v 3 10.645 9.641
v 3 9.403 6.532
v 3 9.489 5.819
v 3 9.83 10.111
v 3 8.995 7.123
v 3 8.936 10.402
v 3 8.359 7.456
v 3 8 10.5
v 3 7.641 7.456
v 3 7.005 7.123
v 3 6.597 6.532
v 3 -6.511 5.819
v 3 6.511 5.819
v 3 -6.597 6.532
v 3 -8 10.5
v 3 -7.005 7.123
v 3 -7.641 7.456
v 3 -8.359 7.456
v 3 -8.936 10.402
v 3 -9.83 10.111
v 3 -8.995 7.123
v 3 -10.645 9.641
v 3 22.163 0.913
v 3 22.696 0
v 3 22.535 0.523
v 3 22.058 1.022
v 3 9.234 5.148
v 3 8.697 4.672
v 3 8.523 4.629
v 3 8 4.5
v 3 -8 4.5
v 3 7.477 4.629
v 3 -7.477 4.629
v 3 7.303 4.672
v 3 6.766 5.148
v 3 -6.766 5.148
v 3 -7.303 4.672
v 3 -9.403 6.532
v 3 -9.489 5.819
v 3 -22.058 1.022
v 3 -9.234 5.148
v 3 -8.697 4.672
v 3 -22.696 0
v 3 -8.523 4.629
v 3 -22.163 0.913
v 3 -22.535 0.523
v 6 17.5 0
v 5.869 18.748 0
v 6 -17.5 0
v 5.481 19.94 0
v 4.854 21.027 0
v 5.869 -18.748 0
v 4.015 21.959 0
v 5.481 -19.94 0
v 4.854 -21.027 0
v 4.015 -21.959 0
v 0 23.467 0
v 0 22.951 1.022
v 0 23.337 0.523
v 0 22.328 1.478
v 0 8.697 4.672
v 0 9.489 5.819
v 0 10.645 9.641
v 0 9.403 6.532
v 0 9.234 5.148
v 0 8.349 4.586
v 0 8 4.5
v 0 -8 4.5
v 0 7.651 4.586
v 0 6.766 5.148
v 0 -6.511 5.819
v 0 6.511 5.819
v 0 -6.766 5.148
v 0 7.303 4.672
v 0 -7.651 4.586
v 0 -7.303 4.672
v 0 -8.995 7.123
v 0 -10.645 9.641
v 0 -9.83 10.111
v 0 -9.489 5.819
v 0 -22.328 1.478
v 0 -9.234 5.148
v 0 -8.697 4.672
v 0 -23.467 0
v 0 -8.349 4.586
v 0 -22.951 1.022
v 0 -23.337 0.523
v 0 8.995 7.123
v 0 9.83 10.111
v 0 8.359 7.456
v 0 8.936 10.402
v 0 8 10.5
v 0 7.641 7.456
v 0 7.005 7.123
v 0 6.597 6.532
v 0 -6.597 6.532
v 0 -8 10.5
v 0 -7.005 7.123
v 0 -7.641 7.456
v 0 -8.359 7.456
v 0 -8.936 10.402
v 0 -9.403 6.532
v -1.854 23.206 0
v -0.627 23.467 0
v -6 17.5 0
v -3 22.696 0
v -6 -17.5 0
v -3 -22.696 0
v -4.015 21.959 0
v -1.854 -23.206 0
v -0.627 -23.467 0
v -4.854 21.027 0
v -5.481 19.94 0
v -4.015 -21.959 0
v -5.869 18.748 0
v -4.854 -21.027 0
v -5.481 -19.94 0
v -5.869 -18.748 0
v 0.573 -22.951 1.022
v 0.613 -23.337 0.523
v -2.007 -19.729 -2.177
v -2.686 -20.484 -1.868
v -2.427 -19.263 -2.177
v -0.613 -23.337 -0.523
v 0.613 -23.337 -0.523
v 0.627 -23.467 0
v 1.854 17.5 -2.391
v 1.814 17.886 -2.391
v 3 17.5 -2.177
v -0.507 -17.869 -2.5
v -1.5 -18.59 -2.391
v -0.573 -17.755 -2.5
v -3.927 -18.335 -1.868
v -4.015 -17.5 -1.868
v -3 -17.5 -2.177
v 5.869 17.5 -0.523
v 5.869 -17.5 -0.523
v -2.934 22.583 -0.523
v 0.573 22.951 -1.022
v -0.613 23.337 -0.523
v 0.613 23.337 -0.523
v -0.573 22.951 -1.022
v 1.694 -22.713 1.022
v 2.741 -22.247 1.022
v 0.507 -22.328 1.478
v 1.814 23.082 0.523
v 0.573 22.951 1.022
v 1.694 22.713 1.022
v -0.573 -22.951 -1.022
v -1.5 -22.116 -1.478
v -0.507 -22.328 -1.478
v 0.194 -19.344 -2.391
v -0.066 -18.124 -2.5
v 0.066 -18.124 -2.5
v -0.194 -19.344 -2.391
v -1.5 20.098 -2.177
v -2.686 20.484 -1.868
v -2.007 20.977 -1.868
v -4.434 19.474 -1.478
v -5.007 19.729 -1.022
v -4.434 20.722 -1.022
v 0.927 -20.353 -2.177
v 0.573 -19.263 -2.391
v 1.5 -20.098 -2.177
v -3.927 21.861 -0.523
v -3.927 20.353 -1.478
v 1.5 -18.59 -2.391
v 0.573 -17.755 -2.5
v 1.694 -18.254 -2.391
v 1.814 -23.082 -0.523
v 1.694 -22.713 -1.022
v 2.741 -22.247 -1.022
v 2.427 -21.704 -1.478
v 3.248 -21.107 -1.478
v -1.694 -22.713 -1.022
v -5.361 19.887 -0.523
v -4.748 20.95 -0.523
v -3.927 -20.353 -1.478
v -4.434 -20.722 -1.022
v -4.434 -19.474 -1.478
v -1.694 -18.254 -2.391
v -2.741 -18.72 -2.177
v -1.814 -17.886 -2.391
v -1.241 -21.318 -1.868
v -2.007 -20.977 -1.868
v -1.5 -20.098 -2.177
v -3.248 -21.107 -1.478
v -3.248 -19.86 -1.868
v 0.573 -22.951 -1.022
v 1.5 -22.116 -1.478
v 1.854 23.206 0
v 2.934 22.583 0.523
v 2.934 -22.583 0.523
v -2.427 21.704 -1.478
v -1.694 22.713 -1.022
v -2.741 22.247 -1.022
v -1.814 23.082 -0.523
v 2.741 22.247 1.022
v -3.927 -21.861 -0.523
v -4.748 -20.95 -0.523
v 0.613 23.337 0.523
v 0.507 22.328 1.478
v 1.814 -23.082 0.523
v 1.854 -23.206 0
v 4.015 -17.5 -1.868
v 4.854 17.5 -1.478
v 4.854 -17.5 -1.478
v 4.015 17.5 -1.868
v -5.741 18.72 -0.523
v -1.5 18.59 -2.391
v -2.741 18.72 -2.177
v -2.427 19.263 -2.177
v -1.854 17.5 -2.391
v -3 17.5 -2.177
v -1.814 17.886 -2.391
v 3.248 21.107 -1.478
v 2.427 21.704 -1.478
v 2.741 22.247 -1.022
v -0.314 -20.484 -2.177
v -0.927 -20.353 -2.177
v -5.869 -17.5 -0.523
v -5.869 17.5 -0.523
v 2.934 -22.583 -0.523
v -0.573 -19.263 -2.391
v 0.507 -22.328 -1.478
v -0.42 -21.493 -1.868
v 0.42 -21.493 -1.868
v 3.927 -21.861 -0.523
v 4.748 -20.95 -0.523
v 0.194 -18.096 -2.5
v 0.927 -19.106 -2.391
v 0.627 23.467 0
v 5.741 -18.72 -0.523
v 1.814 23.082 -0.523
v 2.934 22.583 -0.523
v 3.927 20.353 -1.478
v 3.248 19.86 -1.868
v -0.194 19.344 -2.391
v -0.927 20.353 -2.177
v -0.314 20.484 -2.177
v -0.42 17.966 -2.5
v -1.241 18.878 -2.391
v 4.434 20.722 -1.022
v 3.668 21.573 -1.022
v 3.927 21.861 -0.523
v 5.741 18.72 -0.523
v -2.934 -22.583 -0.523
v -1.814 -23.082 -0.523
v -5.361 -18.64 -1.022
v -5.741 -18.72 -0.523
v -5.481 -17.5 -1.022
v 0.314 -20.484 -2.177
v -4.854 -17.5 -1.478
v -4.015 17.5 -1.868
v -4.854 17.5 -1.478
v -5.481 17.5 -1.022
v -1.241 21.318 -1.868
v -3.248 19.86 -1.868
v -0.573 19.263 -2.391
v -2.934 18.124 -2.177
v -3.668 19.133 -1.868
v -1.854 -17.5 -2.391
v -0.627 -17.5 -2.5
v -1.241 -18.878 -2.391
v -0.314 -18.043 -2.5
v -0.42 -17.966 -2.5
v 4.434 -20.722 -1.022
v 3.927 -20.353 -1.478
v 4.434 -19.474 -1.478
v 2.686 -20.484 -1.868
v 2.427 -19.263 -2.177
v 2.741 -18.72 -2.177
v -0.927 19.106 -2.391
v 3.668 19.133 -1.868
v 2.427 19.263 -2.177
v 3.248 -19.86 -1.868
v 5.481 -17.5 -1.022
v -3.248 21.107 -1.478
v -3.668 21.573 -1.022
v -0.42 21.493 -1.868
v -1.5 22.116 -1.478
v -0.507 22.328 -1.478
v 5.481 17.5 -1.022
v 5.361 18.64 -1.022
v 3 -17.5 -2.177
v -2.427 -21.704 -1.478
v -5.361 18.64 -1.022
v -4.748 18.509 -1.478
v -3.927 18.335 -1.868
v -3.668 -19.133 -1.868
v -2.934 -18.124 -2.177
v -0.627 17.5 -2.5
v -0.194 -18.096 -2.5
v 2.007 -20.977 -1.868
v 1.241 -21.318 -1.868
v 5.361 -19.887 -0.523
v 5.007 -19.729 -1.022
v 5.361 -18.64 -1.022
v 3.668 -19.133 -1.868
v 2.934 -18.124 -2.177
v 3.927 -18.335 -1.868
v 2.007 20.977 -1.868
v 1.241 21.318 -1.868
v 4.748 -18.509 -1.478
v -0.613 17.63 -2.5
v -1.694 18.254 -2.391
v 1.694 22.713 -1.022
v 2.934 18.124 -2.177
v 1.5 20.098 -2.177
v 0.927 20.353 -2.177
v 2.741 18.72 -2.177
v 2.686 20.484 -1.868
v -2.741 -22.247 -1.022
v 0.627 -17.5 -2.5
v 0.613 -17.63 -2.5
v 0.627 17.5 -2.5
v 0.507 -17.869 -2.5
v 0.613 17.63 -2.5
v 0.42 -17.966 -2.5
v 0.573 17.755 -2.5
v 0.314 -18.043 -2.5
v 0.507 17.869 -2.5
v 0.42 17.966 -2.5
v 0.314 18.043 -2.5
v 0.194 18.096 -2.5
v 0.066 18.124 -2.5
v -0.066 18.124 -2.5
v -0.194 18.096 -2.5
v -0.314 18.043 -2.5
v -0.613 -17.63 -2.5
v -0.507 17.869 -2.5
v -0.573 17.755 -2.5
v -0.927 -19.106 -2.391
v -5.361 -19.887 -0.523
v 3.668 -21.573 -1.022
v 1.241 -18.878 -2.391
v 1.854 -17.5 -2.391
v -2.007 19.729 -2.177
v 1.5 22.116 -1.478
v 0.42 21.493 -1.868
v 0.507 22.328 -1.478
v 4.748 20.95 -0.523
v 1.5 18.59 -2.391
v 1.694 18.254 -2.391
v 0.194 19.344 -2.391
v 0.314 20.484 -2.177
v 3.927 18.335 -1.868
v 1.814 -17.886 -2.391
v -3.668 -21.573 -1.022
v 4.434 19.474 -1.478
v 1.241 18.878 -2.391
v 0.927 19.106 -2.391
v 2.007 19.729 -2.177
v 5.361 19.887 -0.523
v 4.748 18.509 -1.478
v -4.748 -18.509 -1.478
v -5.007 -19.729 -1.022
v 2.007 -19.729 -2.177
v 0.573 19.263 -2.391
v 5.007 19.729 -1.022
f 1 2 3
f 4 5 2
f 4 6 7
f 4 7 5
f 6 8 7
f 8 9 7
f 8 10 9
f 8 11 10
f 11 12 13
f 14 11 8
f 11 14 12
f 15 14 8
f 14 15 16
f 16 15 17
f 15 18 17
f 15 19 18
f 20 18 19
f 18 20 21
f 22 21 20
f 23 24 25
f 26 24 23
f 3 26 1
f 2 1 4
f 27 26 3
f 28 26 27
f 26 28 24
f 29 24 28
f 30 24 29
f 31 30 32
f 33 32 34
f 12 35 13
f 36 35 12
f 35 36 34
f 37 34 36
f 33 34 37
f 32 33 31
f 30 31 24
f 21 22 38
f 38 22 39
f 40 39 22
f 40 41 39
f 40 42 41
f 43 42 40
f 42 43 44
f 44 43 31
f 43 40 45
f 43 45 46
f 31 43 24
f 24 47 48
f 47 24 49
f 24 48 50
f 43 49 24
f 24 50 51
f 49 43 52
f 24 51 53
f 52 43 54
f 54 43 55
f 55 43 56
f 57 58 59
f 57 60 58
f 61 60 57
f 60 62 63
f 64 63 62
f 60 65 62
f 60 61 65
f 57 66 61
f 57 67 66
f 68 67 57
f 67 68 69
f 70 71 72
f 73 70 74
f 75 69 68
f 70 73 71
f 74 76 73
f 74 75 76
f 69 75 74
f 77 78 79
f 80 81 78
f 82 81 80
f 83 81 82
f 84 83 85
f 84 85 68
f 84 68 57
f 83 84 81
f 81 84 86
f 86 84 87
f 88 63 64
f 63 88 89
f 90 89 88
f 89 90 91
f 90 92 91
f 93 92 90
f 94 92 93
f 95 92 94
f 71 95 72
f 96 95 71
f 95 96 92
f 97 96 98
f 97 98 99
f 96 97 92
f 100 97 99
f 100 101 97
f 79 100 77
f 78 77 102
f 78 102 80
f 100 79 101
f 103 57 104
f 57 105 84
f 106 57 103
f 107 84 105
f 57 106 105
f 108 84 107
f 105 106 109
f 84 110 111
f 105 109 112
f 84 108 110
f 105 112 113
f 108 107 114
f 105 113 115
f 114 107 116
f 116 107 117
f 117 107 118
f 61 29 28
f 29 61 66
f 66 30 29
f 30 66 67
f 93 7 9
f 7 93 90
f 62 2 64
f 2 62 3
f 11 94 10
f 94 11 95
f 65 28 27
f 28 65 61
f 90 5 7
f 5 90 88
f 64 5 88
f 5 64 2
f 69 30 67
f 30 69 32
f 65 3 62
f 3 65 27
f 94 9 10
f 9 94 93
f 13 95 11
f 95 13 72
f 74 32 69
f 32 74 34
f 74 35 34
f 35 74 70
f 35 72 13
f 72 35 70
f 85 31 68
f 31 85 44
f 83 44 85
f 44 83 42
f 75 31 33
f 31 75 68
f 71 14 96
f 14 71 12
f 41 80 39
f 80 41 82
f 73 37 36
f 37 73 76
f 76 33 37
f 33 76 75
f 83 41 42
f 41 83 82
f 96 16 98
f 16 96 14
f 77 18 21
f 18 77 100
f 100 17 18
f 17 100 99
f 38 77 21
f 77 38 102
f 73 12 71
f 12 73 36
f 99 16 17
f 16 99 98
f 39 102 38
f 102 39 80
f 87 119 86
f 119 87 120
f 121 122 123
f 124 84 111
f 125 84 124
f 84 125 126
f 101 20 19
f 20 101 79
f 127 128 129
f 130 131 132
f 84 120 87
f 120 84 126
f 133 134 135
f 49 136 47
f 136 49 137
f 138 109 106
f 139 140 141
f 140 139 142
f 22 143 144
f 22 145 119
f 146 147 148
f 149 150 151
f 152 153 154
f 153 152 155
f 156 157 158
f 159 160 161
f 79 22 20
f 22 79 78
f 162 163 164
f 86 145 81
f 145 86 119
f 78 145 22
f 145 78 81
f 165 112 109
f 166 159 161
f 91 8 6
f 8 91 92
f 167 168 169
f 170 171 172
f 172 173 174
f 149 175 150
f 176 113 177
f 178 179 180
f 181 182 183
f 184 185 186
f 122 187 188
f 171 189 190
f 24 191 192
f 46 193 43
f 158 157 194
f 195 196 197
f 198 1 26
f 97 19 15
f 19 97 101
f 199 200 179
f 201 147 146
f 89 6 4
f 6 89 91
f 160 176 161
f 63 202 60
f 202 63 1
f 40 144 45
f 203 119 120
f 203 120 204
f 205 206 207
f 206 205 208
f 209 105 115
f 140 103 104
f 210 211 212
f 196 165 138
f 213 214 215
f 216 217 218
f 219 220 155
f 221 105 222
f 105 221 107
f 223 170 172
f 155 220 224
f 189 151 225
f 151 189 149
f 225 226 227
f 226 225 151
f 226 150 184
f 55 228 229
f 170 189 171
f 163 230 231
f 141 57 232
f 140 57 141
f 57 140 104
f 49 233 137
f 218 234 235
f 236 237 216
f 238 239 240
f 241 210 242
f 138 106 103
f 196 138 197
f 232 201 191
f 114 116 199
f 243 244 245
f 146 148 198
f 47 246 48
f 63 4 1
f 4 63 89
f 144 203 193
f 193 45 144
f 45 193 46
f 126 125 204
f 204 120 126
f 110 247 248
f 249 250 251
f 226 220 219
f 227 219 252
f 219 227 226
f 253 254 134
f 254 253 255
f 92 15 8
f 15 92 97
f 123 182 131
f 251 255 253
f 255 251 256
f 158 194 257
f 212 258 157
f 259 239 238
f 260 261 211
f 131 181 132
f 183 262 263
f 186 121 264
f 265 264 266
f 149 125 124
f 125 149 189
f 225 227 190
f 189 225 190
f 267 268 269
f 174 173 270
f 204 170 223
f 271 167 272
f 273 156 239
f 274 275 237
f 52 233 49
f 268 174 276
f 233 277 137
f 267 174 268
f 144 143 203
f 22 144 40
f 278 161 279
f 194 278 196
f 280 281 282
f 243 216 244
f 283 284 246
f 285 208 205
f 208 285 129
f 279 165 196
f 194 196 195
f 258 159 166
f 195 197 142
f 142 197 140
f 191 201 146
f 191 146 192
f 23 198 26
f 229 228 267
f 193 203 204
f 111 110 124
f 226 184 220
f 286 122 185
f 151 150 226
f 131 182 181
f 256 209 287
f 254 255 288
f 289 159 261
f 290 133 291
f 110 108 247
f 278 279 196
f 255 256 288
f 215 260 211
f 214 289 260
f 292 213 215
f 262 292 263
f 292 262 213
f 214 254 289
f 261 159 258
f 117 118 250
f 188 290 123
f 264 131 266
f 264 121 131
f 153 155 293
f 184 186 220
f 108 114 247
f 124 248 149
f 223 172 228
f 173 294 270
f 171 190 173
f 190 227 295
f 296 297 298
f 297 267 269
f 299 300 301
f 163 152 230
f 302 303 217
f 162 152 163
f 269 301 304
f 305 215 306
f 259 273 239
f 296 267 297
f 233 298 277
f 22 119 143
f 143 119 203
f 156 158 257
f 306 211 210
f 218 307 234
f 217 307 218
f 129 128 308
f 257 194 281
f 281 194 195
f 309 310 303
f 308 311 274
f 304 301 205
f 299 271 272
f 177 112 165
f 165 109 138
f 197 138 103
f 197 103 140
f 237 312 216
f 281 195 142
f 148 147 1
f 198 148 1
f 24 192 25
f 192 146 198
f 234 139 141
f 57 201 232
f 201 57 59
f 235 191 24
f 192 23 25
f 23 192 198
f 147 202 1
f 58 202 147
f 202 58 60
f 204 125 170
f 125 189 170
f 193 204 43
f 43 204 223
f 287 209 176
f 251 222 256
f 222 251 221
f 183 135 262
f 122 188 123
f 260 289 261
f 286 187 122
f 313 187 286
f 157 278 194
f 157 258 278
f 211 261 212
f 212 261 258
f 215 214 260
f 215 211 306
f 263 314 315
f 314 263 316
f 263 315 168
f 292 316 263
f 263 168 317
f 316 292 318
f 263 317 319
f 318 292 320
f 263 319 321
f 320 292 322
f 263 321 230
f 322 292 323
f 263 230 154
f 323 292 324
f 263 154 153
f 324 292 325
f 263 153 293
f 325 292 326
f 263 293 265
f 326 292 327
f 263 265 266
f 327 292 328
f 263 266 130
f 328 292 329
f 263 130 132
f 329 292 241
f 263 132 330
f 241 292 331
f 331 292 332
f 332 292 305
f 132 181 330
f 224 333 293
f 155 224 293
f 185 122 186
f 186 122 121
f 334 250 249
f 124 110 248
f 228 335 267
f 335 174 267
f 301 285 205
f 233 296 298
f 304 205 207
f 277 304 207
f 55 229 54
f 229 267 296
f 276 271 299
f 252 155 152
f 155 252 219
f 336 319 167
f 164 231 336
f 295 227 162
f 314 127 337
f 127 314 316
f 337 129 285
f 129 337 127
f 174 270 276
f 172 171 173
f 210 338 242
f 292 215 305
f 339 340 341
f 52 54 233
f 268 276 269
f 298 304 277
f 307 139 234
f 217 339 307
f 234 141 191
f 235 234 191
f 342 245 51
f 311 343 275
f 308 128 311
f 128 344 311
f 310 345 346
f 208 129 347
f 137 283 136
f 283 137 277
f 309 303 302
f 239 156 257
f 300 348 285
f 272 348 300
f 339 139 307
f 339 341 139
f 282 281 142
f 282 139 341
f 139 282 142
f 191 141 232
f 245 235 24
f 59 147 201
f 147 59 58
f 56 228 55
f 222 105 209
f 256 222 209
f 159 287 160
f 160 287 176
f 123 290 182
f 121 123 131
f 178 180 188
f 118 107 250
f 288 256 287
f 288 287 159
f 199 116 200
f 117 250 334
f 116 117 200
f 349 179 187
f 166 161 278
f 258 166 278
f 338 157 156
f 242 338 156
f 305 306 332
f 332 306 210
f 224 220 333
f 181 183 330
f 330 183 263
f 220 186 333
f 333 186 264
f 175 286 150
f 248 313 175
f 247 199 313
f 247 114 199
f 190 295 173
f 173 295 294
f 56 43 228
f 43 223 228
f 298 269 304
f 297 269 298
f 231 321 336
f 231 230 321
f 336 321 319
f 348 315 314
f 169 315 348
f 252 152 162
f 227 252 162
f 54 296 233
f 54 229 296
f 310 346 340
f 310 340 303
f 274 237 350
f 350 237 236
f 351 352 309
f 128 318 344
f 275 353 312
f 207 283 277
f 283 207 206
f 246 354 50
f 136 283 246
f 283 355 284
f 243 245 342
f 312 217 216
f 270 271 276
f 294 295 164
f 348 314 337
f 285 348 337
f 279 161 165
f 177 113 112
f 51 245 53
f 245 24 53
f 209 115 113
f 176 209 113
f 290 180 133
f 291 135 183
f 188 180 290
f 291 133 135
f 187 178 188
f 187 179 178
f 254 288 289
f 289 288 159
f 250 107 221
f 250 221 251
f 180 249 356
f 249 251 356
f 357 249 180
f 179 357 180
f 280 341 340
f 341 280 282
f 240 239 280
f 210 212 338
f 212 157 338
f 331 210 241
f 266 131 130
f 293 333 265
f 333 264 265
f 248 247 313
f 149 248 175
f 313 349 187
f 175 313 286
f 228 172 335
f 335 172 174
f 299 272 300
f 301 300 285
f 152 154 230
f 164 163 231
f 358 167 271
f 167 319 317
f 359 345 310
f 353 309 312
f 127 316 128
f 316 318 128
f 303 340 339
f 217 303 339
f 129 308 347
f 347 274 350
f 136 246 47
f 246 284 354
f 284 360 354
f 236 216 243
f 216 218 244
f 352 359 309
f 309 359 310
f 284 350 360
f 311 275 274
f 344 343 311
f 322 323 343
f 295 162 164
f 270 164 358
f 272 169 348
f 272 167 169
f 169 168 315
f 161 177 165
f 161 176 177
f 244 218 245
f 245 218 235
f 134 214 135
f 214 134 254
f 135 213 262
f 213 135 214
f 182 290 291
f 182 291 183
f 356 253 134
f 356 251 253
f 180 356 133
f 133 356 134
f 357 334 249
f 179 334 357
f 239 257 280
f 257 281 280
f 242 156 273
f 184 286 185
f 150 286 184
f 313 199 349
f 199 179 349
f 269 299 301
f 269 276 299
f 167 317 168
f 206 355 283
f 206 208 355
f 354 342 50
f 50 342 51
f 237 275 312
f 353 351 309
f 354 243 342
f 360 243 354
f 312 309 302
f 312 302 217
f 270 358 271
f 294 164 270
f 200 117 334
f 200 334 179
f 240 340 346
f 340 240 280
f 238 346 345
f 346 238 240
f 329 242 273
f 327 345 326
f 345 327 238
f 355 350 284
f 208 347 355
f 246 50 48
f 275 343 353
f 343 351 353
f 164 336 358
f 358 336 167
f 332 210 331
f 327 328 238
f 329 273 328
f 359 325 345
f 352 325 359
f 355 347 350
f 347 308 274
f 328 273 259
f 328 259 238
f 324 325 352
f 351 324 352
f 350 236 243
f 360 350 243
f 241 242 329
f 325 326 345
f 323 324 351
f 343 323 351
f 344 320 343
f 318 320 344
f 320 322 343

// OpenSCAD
$fs=.75;

difference() {
	hull() {
		union() {
			resize(newsize = [0, 0, 5]) {
				union() {
					rotate(a = [90, 0, 0]) {
						translate(v = [-0.0000000000, -0.0000000000, -17.5000000000]) {
							cylinder(d = 12.0000000000, h = 35.0000000000);
						}
					}
					union() {
						translate(v = [0, 17.5000000000, 0]) {
							sphere(d = 12.0000000000);
						}
						mirror(v = [0, 1, 0]) {
							translate(v = [0, 17.5000000000, 0]) {
								sphere(d = 12.0000000000);
							}
						}
					}
				}
			}
			translate(v = [1.5000000000, 0, 0]) {
				union() {
					translate(v = [0.0000000000, 0.0000000000, 4.5000000000]) {
						translate(v = [-1.5000000000, -8.0000000000, -4.5000000000]) {
							cube(size = [3.0000000000, 16.0000000000, 9.0000000000]);
						}
					}
					union() {
						translate(v = [0, 8.0000000000, 6.0000000000]) {
							rotate(a = [0, 90, 0]) {
								translate(v = [-0.0000000000, -0.0000000000, -1.5000000000]) {
									cylinder(d = 9.0000000000, h = 3.0000000000);
								}
							}
						}
						mirror(v = [0, 1, 0]) {
							translate(v = [0, 8.0000000000, 6.0000000000]) {
								rotate(a = [0, 90, 0]) {
									translate(v = [-0.0000000000, -0.0000000000, -1.5000000000]) {
										cylinder(d = 9.0000000000, h = 3.0000000000);
									}
								}
							}
						}
					}
				}
			}
		}
	}
	translate(v = [1.5000000000, 0, 0]) {
		union() {
			translate(v = [1.5000000000, 0, 0]) {
				translate(v = [6.0000000000, 0.0000000000, 6.5000000000]) {
					translate(v = [-6.0000000000, -24.0000000000, -6.5000000000]) {
						cube(size = [12.0000000000, 48.0000000000, 13.0000000000]);
					}
				}
			}
			mirror(v = [1, 0, 0]) {
				translate(v = [1.5000000000, 0, 0]) {
					translate(v = [6.0000000000, 0.0000000000, 6.5000000000]) {
						translate(v = [-6.0000000000, -24.0000000000, -6.5000000000]) {
							cube(size = [12.0000000000, 48.0000000000, 13.0000000000]);
						}
					}
				}
			}
		}
	}
	union() {
		translate(v = [0, 8.0000000000, 6.0000000000]) {
			rotate(a = [0, 90, 0]) {
				translate(v = [-0.0000000000, -0.0000000000, -6.0000000000]) {
					cylinder(d = 3.0000000000, h = 12.0000000000);
				}
			}
		}
		mirror(v = [0, 1, 0]) {
			translate(v = [0, 8.0000000000, 6.0000000000]) {
				rotate(a = [0, 90, 0]) {
					translate(v = [-0.0000000000, -0.0000000000, -6.0000000000]) {
						cylinder(d = 3.0000000000, h = 12.0000000000);
					}
				}
			}
		}
	}
}
/***********************************************
*********      SolidPython code:      **********
************************************************
 
from solid import *
from solid import extensions
from math import *

class Object:
    pass

lenght = 35.
hole = 3.0
thk=3.
height=12.
holesDistance=16.
width=12.


base = ( cylinder(d=width,h=lenght).center().rot(x=90)
	     + sphere(d=width).move(y=lenght/2).mirrorCopy('y')
	   ).resize([0,0,5])

center = (cube([thk,holesDistance,height-3]).align('z-') +
          cylinder(d=height-3,h=thk).center().rot(y=90).move(y=holesDistance/2,z=height/2).mirrorCopy('y')
          ).move(x=1.5)

sidecuts = (cube([width,lenght+width+1,height+1]).align('x-','z-').move(x=thk/2).mirrorCopy('x')).move(x=1.5)

holes = cylinder(d=hole,h=width).center().rot(y=90).move(y=holesDistance/2,z=height/2).mirrorCopy('y')
scene = hull(base + center)-sidecuts-holes

scad_render_to_file(scene, 'preview.scad', '$fs=.75;')
 
 
************************************************/
